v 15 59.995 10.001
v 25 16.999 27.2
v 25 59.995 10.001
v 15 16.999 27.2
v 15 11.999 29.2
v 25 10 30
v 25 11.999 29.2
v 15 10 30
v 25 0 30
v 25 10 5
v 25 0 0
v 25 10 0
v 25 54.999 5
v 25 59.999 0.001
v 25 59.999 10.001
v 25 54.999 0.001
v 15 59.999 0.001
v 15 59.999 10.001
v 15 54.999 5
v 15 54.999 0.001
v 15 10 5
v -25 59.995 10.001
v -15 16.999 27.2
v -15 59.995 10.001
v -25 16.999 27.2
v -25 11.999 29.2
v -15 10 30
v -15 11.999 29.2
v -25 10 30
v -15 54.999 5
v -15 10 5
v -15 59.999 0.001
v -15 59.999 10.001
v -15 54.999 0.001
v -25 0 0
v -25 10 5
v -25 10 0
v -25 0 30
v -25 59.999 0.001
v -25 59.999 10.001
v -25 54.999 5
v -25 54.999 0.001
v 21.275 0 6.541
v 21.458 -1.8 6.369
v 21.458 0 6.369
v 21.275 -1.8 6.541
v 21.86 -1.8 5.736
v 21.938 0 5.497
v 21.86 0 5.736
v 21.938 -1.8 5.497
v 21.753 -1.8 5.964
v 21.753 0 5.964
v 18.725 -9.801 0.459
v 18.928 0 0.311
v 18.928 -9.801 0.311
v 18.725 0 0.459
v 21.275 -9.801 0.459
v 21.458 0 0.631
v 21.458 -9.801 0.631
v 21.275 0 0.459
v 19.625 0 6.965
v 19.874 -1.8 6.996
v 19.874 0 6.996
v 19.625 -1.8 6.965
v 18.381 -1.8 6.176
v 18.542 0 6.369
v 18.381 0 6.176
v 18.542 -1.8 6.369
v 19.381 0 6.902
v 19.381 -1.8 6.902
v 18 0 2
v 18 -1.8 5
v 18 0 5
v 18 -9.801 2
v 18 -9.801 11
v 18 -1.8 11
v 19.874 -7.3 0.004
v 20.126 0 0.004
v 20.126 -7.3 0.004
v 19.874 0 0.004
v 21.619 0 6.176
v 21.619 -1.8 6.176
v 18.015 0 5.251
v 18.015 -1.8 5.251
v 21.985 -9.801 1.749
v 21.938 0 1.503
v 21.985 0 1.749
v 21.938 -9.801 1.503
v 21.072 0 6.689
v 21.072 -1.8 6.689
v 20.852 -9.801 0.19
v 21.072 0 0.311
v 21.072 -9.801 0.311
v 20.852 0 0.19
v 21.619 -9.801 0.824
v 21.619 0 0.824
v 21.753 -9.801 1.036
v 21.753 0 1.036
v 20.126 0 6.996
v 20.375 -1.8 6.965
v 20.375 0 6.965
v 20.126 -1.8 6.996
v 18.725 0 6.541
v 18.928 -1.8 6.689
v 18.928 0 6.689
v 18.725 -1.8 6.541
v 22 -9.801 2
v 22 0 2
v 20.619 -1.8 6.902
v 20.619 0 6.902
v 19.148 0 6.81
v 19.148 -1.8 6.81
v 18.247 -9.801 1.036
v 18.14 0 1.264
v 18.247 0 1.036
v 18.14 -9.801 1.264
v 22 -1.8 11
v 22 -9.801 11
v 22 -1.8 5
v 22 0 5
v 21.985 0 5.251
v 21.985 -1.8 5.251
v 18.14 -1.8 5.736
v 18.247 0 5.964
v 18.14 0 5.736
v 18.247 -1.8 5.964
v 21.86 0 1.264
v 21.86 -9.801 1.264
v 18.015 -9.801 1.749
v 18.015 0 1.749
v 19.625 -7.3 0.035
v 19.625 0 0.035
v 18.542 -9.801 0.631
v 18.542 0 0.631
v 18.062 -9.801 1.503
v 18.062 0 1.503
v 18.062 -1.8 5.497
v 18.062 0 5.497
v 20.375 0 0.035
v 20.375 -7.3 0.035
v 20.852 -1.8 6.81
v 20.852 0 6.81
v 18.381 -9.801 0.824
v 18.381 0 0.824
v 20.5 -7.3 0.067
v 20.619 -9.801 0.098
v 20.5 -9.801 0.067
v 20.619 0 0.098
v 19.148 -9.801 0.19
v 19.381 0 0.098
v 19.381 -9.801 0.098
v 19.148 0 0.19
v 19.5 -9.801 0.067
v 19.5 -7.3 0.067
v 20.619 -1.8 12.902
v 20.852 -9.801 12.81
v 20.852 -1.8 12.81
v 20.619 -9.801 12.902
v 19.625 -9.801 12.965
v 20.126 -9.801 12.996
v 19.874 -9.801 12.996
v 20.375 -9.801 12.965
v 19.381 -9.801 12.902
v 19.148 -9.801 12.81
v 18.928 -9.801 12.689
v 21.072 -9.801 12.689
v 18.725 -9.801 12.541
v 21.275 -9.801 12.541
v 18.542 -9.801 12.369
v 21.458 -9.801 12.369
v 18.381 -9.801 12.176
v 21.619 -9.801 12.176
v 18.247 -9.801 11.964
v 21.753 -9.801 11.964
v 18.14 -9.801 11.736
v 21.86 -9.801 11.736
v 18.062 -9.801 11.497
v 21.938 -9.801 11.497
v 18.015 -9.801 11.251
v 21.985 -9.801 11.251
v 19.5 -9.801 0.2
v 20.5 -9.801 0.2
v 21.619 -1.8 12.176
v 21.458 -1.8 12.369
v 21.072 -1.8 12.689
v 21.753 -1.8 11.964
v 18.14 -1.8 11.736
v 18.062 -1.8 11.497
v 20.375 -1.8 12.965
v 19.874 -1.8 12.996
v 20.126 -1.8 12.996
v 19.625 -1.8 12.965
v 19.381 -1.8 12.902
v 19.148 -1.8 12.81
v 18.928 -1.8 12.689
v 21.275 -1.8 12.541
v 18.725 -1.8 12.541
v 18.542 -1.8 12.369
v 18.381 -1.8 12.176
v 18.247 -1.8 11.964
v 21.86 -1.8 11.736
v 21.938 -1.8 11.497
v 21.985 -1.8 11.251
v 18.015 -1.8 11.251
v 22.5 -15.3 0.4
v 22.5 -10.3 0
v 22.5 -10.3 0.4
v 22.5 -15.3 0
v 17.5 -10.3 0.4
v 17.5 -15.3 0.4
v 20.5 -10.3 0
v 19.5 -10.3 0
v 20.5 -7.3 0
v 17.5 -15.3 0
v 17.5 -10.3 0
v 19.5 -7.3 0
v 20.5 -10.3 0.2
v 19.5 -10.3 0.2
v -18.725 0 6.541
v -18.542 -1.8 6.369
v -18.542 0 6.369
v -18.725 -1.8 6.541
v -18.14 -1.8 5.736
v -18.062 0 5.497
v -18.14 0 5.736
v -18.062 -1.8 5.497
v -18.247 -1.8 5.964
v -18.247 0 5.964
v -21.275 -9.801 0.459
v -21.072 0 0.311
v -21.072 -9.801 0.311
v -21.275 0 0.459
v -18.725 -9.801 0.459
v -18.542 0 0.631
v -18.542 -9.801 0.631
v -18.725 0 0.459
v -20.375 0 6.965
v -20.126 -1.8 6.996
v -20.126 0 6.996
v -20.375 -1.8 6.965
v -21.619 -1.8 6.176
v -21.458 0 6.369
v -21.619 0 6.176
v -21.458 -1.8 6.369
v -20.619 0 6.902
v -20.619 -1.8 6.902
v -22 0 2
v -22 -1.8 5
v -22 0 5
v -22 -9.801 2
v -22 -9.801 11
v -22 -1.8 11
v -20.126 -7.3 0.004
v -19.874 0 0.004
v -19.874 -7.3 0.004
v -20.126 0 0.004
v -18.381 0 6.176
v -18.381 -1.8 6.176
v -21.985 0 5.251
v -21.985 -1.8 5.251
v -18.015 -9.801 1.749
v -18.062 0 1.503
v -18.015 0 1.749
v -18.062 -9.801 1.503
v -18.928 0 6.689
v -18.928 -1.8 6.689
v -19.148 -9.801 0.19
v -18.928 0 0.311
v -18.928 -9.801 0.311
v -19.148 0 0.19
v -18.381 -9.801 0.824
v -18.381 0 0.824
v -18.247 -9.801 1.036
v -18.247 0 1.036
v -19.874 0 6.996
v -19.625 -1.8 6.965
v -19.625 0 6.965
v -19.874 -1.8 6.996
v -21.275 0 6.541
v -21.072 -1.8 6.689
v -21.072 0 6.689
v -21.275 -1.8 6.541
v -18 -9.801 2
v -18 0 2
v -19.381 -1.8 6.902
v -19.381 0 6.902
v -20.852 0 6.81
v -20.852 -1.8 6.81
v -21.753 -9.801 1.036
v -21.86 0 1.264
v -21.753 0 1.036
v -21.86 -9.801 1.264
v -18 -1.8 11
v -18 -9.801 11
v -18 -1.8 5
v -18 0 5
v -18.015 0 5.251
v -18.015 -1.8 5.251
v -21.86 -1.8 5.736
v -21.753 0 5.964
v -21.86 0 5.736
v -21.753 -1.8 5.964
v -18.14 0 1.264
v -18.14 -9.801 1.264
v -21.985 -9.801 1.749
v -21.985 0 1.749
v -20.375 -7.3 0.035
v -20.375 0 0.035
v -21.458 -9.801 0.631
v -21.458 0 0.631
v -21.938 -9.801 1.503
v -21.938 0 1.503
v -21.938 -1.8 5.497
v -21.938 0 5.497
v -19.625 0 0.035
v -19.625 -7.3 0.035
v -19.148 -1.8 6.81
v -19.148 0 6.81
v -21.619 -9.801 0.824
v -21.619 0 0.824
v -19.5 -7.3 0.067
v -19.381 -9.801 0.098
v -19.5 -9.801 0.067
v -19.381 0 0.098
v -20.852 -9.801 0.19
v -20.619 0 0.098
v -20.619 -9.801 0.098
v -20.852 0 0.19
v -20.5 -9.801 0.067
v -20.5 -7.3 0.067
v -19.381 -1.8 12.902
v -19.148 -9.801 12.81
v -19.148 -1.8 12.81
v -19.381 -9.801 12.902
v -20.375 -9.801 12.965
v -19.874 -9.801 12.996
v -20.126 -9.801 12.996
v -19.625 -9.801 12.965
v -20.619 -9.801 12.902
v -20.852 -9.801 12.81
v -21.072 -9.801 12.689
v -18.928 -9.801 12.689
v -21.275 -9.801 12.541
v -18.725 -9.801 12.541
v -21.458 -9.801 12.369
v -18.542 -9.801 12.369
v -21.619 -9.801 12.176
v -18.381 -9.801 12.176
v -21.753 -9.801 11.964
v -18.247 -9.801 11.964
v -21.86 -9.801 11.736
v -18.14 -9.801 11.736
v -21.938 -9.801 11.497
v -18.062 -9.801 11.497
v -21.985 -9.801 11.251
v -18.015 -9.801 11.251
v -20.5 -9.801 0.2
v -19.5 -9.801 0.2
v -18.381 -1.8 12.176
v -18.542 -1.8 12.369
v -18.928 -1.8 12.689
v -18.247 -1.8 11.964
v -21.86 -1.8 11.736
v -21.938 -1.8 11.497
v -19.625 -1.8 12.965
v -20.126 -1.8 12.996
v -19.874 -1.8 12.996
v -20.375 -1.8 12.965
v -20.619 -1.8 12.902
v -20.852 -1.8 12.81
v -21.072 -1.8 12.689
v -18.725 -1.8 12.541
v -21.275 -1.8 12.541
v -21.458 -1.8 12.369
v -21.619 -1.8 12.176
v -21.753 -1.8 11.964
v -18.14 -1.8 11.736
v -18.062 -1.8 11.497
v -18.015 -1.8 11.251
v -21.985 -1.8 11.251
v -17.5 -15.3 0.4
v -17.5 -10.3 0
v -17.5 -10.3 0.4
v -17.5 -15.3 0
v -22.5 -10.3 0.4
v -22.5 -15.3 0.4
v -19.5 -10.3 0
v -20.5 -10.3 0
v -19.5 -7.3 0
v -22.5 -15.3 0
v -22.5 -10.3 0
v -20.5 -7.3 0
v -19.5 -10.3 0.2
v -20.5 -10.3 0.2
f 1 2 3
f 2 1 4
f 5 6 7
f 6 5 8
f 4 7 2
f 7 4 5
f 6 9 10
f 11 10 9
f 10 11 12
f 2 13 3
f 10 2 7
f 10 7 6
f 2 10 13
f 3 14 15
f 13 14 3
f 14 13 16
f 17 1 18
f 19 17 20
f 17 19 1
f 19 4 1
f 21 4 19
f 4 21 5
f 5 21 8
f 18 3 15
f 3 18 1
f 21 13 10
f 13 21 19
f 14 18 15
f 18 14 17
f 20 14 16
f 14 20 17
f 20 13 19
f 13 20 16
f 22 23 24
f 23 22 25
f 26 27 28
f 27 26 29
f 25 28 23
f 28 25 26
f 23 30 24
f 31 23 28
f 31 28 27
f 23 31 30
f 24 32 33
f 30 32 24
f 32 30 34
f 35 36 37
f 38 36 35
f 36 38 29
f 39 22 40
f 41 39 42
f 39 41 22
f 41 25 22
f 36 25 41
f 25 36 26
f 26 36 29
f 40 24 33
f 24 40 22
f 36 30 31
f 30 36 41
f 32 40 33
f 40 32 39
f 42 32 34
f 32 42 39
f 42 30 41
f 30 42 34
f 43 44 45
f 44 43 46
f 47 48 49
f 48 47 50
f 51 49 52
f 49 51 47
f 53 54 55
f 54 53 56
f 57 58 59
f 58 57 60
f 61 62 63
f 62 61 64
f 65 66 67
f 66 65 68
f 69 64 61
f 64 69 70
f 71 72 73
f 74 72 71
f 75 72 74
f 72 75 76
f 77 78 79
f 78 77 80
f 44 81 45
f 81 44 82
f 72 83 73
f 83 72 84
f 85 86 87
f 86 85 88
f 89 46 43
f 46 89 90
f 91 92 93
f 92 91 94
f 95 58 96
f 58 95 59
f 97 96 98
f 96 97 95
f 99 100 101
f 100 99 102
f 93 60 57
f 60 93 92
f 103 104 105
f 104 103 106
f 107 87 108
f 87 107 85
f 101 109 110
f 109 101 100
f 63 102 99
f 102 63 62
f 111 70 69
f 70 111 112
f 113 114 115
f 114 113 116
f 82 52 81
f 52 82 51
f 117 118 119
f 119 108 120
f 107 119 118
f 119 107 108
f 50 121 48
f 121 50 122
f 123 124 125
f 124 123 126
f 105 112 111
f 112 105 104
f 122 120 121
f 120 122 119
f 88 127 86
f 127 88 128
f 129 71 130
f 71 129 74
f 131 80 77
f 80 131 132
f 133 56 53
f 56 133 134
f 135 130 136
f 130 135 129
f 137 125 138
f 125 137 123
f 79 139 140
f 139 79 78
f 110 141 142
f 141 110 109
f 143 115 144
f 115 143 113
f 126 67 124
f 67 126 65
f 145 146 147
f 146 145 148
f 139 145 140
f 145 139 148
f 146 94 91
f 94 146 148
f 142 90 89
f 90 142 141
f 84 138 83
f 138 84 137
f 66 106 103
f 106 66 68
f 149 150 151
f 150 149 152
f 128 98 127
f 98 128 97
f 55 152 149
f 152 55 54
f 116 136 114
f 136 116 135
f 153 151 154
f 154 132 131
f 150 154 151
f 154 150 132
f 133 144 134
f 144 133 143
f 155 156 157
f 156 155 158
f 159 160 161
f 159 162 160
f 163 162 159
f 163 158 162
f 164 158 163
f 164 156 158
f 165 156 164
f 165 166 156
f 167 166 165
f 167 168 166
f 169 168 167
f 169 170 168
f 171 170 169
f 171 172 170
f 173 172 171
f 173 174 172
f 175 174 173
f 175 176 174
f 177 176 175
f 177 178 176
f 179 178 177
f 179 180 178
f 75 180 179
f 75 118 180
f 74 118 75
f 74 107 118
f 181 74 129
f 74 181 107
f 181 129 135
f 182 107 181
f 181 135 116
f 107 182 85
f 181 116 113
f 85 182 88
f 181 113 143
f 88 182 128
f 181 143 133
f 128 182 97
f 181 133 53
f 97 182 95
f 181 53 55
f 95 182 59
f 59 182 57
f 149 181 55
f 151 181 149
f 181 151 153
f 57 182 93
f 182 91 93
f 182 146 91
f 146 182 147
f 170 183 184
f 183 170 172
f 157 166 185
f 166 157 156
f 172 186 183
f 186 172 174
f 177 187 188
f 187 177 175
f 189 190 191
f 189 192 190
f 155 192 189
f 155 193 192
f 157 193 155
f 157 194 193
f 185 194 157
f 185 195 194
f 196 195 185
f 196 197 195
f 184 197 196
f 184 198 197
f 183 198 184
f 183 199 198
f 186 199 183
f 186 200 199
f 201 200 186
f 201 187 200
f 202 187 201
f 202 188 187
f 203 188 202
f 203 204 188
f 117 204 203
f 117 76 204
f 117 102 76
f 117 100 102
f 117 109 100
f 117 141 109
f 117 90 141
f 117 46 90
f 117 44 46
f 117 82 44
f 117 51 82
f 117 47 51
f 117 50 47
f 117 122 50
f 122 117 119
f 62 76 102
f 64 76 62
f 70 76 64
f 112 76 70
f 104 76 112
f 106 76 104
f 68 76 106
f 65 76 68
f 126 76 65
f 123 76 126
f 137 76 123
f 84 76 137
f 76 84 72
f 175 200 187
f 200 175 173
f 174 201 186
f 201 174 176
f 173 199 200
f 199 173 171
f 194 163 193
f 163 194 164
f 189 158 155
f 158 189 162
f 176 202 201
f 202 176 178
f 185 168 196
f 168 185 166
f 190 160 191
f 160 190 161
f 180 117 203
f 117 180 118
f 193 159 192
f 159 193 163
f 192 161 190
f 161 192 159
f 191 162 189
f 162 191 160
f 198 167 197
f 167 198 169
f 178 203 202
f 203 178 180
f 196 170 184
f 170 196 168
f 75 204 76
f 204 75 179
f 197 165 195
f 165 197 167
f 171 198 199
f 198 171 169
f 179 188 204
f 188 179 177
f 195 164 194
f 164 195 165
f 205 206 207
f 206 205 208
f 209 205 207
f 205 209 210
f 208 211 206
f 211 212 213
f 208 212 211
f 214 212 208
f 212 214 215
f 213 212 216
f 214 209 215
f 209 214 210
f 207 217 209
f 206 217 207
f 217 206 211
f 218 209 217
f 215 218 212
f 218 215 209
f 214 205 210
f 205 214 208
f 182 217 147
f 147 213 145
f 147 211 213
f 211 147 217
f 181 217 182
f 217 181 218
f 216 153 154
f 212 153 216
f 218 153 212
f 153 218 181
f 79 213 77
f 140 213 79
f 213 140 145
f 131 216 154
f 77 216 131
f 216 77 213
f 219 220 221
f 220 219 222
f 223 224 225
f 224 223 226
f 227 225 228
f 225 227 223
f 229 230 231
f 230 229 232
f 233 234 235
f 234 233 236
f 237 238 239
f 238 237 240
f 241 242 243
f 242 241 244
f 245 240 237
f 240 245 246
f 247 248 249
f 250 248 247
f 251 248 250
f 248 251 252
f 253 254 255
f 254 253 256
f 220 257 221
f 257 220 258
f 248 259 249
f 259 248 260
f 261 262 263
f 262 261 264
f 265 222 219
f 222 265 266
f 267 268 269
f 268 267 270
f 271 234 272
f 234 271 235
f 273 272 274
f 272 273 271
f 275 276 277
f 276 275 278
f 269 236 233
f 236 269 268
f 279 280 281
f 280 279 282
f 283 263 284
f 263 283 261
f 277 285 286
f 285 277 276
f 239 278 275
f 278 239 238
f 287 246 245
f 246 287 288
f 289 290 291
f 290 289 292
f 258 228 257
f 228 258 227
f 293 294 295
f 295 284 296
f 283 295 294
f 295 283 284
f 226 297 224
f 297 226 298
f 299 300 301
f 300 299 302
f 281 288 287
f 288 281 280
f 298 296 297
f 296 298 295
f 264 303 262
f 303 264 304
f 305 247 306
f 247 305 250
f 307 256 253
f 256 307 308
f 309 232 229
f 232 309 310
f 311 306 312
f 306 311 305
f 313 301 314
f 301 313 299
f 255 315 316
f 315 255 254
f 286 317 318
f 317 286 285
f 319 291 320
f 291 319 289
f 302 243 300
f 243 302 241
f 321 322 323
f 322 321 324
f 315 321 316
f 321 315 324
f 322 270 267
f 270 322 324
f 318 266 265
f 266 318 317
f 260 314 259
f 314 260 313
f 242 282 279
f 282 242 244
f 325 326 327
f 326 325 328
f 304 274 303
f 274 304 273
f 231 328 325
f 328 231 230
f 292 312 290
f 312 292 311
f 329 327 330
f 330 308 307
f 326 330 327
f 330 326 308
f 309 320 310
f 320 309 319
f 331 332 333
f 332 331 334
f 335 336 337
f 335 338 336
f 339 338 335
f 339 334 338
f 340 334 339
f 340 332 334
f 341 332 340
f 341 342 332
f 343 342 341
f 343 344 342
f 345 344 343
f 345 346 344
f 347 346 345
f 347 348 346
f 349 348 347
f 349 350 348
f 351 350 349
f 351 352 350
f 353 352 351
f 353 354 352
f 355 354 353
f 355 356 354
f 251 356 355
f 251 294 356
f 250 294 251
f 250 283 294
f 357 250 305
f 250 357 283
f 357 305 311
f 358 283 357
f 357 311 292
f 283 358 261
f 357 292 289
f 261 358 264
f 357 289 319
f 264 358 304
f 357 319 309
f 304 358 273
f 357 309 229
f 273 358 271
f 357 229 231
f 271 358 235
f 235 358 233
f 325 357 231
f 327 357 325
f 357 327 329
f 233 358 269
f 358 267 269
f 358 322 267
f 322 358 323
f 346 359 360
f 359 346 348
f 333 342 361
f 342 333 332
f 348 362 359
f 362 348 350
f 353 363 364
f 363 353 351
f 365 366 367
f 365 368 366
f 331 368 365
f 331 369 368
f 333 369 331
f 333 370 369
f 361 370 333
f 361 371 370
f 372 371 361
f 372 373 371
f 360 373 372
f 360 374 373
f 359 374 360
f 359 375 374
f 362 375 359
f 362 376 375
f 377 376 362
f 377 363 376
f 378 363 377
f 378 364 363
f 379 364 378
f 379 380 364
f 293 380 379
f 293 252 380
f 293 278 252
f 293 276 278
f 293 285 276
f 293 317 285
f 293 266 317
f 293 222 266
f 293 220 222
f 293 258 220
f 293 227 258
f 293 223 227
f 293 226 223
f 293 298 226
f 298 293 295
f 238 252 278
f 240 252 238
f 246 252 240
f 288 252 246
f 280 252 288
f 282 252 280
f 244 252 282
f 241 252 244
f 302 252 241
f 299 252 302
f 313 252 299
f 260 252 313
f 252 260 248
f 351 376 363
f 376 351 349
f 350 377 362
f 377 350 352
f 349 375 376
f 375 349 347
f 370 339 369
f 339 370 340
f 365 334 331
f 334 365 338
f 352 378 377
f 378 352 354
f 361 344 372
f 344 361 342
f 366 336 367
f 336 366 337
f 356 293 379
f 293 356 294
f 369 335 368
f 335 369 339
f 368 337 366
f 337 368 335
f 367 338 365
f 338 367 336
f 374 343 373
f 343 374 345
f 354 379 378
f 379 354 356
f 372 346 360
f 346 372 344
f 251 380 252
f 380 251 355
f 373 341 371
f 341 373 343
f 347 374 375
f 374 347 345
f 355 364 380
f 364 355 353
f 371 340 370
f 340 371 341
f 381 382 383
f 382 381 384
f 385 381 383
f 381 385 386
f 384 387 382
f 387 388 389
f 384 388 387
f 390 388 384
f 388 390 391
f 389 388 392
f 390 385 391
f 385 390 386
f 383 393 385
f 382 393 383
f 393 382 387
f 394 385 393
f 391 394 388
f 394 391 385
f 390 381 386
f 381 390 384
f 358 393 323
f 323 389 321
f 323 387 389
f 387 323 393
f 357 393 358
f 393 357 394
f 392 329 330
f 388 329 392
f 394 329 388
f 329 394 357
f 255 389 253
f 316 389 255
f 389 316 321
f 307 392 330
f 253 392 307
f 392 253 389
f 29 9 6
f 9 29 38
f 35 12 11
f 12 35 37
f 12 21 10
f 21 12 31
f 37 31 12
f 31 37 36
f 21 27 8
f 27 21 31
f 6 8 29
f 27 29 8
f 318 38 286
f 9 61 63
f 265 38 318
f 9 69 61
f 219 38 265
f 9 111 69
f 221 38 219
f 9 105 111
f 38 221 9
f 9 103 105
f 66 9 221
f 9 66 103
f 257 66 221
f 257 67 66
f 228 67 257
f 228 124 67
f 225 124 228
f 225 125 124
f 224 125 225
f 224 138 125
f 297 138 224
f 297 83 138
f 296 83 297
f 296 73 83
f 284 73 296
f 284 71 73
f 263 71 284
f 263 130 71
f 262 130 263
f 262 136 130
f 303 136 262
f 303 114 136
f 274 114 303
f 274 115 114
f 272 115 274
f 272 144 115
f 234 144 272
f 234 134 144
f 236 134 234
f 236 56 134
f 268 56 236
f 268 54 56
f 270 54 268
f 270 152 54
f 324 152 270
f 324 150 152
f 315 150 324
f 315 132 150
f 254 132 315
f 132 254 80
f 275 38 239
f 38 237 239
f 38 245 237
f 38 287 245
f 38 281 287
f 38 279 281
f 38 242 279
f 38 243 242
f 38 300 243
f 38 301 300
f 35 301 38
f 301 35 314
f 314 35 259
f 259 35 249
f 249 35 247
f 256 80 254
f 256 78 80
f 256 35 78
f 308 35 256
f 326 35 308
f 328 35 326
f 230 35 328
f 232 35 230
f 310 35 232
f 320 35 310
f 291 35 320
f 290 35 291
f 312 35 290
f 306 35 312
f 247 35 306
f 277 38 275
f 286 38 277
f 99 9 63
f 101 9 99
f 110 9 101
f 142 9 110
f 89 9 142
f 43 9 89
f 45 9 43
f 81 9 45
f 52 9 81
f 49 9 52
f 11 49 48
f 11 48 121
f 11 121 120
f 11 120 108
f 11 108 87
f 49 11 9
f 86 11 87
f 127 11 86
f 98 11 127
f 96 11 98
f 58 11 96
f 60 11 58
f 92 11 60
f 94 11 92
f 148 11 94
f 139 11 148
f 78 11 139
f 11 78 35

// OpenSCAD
// file: ikea_skadis_hookup.scad
module hooker() {
  minkowski() {
    union() {
      translate([0, 0, 2])
      linear_extrude(height=3)
      square([0.001, 10], center=true);

      translate([0, -4, 2])
      linear_extrude(height=9)
      square([0.001, 8], center=true);
    }

    rotate(v=[1,0,0], a=90)
    cylinder(r=2, h=0.001);
  }

  translate([0, -11, 0.2])
  cube([5, 5, 0.4], center=true);

  translate([0, -8, 0.1])
  cube([1, 5, 0.2], center=true);
}

// hooker();
// main file
$fn=50;

include <./ikea_skadis_hookup.scad>

translate([0, 5, 15])
cube([50, 10, 30], center = true);

translate([20, 9.999, 5])
branch(10, 50, 25);

translate([-20, 9.999, 5])
branch(10, 50, 25);

module branch(x, y, z) {
  translate([0, 0, 5])
  difference() {
    linear_extrude(height=z-5, scale=[1, 0])
    square([x, 2*y], center=true);

    translate([0, -y/2-1, z/2])
    cube([x+1, y+1, z+1], center=true);
  };

  translate([0, y/2, 2.501])
  cube([x, y, 5.001], center=true);

  translate([0, y-2.5, -2.499])
  cube([x, 5, 5], center=true);
};

translate([20, -1.8, 0])
hooker();

translate([-20, -1.8, 0])
hooker();
